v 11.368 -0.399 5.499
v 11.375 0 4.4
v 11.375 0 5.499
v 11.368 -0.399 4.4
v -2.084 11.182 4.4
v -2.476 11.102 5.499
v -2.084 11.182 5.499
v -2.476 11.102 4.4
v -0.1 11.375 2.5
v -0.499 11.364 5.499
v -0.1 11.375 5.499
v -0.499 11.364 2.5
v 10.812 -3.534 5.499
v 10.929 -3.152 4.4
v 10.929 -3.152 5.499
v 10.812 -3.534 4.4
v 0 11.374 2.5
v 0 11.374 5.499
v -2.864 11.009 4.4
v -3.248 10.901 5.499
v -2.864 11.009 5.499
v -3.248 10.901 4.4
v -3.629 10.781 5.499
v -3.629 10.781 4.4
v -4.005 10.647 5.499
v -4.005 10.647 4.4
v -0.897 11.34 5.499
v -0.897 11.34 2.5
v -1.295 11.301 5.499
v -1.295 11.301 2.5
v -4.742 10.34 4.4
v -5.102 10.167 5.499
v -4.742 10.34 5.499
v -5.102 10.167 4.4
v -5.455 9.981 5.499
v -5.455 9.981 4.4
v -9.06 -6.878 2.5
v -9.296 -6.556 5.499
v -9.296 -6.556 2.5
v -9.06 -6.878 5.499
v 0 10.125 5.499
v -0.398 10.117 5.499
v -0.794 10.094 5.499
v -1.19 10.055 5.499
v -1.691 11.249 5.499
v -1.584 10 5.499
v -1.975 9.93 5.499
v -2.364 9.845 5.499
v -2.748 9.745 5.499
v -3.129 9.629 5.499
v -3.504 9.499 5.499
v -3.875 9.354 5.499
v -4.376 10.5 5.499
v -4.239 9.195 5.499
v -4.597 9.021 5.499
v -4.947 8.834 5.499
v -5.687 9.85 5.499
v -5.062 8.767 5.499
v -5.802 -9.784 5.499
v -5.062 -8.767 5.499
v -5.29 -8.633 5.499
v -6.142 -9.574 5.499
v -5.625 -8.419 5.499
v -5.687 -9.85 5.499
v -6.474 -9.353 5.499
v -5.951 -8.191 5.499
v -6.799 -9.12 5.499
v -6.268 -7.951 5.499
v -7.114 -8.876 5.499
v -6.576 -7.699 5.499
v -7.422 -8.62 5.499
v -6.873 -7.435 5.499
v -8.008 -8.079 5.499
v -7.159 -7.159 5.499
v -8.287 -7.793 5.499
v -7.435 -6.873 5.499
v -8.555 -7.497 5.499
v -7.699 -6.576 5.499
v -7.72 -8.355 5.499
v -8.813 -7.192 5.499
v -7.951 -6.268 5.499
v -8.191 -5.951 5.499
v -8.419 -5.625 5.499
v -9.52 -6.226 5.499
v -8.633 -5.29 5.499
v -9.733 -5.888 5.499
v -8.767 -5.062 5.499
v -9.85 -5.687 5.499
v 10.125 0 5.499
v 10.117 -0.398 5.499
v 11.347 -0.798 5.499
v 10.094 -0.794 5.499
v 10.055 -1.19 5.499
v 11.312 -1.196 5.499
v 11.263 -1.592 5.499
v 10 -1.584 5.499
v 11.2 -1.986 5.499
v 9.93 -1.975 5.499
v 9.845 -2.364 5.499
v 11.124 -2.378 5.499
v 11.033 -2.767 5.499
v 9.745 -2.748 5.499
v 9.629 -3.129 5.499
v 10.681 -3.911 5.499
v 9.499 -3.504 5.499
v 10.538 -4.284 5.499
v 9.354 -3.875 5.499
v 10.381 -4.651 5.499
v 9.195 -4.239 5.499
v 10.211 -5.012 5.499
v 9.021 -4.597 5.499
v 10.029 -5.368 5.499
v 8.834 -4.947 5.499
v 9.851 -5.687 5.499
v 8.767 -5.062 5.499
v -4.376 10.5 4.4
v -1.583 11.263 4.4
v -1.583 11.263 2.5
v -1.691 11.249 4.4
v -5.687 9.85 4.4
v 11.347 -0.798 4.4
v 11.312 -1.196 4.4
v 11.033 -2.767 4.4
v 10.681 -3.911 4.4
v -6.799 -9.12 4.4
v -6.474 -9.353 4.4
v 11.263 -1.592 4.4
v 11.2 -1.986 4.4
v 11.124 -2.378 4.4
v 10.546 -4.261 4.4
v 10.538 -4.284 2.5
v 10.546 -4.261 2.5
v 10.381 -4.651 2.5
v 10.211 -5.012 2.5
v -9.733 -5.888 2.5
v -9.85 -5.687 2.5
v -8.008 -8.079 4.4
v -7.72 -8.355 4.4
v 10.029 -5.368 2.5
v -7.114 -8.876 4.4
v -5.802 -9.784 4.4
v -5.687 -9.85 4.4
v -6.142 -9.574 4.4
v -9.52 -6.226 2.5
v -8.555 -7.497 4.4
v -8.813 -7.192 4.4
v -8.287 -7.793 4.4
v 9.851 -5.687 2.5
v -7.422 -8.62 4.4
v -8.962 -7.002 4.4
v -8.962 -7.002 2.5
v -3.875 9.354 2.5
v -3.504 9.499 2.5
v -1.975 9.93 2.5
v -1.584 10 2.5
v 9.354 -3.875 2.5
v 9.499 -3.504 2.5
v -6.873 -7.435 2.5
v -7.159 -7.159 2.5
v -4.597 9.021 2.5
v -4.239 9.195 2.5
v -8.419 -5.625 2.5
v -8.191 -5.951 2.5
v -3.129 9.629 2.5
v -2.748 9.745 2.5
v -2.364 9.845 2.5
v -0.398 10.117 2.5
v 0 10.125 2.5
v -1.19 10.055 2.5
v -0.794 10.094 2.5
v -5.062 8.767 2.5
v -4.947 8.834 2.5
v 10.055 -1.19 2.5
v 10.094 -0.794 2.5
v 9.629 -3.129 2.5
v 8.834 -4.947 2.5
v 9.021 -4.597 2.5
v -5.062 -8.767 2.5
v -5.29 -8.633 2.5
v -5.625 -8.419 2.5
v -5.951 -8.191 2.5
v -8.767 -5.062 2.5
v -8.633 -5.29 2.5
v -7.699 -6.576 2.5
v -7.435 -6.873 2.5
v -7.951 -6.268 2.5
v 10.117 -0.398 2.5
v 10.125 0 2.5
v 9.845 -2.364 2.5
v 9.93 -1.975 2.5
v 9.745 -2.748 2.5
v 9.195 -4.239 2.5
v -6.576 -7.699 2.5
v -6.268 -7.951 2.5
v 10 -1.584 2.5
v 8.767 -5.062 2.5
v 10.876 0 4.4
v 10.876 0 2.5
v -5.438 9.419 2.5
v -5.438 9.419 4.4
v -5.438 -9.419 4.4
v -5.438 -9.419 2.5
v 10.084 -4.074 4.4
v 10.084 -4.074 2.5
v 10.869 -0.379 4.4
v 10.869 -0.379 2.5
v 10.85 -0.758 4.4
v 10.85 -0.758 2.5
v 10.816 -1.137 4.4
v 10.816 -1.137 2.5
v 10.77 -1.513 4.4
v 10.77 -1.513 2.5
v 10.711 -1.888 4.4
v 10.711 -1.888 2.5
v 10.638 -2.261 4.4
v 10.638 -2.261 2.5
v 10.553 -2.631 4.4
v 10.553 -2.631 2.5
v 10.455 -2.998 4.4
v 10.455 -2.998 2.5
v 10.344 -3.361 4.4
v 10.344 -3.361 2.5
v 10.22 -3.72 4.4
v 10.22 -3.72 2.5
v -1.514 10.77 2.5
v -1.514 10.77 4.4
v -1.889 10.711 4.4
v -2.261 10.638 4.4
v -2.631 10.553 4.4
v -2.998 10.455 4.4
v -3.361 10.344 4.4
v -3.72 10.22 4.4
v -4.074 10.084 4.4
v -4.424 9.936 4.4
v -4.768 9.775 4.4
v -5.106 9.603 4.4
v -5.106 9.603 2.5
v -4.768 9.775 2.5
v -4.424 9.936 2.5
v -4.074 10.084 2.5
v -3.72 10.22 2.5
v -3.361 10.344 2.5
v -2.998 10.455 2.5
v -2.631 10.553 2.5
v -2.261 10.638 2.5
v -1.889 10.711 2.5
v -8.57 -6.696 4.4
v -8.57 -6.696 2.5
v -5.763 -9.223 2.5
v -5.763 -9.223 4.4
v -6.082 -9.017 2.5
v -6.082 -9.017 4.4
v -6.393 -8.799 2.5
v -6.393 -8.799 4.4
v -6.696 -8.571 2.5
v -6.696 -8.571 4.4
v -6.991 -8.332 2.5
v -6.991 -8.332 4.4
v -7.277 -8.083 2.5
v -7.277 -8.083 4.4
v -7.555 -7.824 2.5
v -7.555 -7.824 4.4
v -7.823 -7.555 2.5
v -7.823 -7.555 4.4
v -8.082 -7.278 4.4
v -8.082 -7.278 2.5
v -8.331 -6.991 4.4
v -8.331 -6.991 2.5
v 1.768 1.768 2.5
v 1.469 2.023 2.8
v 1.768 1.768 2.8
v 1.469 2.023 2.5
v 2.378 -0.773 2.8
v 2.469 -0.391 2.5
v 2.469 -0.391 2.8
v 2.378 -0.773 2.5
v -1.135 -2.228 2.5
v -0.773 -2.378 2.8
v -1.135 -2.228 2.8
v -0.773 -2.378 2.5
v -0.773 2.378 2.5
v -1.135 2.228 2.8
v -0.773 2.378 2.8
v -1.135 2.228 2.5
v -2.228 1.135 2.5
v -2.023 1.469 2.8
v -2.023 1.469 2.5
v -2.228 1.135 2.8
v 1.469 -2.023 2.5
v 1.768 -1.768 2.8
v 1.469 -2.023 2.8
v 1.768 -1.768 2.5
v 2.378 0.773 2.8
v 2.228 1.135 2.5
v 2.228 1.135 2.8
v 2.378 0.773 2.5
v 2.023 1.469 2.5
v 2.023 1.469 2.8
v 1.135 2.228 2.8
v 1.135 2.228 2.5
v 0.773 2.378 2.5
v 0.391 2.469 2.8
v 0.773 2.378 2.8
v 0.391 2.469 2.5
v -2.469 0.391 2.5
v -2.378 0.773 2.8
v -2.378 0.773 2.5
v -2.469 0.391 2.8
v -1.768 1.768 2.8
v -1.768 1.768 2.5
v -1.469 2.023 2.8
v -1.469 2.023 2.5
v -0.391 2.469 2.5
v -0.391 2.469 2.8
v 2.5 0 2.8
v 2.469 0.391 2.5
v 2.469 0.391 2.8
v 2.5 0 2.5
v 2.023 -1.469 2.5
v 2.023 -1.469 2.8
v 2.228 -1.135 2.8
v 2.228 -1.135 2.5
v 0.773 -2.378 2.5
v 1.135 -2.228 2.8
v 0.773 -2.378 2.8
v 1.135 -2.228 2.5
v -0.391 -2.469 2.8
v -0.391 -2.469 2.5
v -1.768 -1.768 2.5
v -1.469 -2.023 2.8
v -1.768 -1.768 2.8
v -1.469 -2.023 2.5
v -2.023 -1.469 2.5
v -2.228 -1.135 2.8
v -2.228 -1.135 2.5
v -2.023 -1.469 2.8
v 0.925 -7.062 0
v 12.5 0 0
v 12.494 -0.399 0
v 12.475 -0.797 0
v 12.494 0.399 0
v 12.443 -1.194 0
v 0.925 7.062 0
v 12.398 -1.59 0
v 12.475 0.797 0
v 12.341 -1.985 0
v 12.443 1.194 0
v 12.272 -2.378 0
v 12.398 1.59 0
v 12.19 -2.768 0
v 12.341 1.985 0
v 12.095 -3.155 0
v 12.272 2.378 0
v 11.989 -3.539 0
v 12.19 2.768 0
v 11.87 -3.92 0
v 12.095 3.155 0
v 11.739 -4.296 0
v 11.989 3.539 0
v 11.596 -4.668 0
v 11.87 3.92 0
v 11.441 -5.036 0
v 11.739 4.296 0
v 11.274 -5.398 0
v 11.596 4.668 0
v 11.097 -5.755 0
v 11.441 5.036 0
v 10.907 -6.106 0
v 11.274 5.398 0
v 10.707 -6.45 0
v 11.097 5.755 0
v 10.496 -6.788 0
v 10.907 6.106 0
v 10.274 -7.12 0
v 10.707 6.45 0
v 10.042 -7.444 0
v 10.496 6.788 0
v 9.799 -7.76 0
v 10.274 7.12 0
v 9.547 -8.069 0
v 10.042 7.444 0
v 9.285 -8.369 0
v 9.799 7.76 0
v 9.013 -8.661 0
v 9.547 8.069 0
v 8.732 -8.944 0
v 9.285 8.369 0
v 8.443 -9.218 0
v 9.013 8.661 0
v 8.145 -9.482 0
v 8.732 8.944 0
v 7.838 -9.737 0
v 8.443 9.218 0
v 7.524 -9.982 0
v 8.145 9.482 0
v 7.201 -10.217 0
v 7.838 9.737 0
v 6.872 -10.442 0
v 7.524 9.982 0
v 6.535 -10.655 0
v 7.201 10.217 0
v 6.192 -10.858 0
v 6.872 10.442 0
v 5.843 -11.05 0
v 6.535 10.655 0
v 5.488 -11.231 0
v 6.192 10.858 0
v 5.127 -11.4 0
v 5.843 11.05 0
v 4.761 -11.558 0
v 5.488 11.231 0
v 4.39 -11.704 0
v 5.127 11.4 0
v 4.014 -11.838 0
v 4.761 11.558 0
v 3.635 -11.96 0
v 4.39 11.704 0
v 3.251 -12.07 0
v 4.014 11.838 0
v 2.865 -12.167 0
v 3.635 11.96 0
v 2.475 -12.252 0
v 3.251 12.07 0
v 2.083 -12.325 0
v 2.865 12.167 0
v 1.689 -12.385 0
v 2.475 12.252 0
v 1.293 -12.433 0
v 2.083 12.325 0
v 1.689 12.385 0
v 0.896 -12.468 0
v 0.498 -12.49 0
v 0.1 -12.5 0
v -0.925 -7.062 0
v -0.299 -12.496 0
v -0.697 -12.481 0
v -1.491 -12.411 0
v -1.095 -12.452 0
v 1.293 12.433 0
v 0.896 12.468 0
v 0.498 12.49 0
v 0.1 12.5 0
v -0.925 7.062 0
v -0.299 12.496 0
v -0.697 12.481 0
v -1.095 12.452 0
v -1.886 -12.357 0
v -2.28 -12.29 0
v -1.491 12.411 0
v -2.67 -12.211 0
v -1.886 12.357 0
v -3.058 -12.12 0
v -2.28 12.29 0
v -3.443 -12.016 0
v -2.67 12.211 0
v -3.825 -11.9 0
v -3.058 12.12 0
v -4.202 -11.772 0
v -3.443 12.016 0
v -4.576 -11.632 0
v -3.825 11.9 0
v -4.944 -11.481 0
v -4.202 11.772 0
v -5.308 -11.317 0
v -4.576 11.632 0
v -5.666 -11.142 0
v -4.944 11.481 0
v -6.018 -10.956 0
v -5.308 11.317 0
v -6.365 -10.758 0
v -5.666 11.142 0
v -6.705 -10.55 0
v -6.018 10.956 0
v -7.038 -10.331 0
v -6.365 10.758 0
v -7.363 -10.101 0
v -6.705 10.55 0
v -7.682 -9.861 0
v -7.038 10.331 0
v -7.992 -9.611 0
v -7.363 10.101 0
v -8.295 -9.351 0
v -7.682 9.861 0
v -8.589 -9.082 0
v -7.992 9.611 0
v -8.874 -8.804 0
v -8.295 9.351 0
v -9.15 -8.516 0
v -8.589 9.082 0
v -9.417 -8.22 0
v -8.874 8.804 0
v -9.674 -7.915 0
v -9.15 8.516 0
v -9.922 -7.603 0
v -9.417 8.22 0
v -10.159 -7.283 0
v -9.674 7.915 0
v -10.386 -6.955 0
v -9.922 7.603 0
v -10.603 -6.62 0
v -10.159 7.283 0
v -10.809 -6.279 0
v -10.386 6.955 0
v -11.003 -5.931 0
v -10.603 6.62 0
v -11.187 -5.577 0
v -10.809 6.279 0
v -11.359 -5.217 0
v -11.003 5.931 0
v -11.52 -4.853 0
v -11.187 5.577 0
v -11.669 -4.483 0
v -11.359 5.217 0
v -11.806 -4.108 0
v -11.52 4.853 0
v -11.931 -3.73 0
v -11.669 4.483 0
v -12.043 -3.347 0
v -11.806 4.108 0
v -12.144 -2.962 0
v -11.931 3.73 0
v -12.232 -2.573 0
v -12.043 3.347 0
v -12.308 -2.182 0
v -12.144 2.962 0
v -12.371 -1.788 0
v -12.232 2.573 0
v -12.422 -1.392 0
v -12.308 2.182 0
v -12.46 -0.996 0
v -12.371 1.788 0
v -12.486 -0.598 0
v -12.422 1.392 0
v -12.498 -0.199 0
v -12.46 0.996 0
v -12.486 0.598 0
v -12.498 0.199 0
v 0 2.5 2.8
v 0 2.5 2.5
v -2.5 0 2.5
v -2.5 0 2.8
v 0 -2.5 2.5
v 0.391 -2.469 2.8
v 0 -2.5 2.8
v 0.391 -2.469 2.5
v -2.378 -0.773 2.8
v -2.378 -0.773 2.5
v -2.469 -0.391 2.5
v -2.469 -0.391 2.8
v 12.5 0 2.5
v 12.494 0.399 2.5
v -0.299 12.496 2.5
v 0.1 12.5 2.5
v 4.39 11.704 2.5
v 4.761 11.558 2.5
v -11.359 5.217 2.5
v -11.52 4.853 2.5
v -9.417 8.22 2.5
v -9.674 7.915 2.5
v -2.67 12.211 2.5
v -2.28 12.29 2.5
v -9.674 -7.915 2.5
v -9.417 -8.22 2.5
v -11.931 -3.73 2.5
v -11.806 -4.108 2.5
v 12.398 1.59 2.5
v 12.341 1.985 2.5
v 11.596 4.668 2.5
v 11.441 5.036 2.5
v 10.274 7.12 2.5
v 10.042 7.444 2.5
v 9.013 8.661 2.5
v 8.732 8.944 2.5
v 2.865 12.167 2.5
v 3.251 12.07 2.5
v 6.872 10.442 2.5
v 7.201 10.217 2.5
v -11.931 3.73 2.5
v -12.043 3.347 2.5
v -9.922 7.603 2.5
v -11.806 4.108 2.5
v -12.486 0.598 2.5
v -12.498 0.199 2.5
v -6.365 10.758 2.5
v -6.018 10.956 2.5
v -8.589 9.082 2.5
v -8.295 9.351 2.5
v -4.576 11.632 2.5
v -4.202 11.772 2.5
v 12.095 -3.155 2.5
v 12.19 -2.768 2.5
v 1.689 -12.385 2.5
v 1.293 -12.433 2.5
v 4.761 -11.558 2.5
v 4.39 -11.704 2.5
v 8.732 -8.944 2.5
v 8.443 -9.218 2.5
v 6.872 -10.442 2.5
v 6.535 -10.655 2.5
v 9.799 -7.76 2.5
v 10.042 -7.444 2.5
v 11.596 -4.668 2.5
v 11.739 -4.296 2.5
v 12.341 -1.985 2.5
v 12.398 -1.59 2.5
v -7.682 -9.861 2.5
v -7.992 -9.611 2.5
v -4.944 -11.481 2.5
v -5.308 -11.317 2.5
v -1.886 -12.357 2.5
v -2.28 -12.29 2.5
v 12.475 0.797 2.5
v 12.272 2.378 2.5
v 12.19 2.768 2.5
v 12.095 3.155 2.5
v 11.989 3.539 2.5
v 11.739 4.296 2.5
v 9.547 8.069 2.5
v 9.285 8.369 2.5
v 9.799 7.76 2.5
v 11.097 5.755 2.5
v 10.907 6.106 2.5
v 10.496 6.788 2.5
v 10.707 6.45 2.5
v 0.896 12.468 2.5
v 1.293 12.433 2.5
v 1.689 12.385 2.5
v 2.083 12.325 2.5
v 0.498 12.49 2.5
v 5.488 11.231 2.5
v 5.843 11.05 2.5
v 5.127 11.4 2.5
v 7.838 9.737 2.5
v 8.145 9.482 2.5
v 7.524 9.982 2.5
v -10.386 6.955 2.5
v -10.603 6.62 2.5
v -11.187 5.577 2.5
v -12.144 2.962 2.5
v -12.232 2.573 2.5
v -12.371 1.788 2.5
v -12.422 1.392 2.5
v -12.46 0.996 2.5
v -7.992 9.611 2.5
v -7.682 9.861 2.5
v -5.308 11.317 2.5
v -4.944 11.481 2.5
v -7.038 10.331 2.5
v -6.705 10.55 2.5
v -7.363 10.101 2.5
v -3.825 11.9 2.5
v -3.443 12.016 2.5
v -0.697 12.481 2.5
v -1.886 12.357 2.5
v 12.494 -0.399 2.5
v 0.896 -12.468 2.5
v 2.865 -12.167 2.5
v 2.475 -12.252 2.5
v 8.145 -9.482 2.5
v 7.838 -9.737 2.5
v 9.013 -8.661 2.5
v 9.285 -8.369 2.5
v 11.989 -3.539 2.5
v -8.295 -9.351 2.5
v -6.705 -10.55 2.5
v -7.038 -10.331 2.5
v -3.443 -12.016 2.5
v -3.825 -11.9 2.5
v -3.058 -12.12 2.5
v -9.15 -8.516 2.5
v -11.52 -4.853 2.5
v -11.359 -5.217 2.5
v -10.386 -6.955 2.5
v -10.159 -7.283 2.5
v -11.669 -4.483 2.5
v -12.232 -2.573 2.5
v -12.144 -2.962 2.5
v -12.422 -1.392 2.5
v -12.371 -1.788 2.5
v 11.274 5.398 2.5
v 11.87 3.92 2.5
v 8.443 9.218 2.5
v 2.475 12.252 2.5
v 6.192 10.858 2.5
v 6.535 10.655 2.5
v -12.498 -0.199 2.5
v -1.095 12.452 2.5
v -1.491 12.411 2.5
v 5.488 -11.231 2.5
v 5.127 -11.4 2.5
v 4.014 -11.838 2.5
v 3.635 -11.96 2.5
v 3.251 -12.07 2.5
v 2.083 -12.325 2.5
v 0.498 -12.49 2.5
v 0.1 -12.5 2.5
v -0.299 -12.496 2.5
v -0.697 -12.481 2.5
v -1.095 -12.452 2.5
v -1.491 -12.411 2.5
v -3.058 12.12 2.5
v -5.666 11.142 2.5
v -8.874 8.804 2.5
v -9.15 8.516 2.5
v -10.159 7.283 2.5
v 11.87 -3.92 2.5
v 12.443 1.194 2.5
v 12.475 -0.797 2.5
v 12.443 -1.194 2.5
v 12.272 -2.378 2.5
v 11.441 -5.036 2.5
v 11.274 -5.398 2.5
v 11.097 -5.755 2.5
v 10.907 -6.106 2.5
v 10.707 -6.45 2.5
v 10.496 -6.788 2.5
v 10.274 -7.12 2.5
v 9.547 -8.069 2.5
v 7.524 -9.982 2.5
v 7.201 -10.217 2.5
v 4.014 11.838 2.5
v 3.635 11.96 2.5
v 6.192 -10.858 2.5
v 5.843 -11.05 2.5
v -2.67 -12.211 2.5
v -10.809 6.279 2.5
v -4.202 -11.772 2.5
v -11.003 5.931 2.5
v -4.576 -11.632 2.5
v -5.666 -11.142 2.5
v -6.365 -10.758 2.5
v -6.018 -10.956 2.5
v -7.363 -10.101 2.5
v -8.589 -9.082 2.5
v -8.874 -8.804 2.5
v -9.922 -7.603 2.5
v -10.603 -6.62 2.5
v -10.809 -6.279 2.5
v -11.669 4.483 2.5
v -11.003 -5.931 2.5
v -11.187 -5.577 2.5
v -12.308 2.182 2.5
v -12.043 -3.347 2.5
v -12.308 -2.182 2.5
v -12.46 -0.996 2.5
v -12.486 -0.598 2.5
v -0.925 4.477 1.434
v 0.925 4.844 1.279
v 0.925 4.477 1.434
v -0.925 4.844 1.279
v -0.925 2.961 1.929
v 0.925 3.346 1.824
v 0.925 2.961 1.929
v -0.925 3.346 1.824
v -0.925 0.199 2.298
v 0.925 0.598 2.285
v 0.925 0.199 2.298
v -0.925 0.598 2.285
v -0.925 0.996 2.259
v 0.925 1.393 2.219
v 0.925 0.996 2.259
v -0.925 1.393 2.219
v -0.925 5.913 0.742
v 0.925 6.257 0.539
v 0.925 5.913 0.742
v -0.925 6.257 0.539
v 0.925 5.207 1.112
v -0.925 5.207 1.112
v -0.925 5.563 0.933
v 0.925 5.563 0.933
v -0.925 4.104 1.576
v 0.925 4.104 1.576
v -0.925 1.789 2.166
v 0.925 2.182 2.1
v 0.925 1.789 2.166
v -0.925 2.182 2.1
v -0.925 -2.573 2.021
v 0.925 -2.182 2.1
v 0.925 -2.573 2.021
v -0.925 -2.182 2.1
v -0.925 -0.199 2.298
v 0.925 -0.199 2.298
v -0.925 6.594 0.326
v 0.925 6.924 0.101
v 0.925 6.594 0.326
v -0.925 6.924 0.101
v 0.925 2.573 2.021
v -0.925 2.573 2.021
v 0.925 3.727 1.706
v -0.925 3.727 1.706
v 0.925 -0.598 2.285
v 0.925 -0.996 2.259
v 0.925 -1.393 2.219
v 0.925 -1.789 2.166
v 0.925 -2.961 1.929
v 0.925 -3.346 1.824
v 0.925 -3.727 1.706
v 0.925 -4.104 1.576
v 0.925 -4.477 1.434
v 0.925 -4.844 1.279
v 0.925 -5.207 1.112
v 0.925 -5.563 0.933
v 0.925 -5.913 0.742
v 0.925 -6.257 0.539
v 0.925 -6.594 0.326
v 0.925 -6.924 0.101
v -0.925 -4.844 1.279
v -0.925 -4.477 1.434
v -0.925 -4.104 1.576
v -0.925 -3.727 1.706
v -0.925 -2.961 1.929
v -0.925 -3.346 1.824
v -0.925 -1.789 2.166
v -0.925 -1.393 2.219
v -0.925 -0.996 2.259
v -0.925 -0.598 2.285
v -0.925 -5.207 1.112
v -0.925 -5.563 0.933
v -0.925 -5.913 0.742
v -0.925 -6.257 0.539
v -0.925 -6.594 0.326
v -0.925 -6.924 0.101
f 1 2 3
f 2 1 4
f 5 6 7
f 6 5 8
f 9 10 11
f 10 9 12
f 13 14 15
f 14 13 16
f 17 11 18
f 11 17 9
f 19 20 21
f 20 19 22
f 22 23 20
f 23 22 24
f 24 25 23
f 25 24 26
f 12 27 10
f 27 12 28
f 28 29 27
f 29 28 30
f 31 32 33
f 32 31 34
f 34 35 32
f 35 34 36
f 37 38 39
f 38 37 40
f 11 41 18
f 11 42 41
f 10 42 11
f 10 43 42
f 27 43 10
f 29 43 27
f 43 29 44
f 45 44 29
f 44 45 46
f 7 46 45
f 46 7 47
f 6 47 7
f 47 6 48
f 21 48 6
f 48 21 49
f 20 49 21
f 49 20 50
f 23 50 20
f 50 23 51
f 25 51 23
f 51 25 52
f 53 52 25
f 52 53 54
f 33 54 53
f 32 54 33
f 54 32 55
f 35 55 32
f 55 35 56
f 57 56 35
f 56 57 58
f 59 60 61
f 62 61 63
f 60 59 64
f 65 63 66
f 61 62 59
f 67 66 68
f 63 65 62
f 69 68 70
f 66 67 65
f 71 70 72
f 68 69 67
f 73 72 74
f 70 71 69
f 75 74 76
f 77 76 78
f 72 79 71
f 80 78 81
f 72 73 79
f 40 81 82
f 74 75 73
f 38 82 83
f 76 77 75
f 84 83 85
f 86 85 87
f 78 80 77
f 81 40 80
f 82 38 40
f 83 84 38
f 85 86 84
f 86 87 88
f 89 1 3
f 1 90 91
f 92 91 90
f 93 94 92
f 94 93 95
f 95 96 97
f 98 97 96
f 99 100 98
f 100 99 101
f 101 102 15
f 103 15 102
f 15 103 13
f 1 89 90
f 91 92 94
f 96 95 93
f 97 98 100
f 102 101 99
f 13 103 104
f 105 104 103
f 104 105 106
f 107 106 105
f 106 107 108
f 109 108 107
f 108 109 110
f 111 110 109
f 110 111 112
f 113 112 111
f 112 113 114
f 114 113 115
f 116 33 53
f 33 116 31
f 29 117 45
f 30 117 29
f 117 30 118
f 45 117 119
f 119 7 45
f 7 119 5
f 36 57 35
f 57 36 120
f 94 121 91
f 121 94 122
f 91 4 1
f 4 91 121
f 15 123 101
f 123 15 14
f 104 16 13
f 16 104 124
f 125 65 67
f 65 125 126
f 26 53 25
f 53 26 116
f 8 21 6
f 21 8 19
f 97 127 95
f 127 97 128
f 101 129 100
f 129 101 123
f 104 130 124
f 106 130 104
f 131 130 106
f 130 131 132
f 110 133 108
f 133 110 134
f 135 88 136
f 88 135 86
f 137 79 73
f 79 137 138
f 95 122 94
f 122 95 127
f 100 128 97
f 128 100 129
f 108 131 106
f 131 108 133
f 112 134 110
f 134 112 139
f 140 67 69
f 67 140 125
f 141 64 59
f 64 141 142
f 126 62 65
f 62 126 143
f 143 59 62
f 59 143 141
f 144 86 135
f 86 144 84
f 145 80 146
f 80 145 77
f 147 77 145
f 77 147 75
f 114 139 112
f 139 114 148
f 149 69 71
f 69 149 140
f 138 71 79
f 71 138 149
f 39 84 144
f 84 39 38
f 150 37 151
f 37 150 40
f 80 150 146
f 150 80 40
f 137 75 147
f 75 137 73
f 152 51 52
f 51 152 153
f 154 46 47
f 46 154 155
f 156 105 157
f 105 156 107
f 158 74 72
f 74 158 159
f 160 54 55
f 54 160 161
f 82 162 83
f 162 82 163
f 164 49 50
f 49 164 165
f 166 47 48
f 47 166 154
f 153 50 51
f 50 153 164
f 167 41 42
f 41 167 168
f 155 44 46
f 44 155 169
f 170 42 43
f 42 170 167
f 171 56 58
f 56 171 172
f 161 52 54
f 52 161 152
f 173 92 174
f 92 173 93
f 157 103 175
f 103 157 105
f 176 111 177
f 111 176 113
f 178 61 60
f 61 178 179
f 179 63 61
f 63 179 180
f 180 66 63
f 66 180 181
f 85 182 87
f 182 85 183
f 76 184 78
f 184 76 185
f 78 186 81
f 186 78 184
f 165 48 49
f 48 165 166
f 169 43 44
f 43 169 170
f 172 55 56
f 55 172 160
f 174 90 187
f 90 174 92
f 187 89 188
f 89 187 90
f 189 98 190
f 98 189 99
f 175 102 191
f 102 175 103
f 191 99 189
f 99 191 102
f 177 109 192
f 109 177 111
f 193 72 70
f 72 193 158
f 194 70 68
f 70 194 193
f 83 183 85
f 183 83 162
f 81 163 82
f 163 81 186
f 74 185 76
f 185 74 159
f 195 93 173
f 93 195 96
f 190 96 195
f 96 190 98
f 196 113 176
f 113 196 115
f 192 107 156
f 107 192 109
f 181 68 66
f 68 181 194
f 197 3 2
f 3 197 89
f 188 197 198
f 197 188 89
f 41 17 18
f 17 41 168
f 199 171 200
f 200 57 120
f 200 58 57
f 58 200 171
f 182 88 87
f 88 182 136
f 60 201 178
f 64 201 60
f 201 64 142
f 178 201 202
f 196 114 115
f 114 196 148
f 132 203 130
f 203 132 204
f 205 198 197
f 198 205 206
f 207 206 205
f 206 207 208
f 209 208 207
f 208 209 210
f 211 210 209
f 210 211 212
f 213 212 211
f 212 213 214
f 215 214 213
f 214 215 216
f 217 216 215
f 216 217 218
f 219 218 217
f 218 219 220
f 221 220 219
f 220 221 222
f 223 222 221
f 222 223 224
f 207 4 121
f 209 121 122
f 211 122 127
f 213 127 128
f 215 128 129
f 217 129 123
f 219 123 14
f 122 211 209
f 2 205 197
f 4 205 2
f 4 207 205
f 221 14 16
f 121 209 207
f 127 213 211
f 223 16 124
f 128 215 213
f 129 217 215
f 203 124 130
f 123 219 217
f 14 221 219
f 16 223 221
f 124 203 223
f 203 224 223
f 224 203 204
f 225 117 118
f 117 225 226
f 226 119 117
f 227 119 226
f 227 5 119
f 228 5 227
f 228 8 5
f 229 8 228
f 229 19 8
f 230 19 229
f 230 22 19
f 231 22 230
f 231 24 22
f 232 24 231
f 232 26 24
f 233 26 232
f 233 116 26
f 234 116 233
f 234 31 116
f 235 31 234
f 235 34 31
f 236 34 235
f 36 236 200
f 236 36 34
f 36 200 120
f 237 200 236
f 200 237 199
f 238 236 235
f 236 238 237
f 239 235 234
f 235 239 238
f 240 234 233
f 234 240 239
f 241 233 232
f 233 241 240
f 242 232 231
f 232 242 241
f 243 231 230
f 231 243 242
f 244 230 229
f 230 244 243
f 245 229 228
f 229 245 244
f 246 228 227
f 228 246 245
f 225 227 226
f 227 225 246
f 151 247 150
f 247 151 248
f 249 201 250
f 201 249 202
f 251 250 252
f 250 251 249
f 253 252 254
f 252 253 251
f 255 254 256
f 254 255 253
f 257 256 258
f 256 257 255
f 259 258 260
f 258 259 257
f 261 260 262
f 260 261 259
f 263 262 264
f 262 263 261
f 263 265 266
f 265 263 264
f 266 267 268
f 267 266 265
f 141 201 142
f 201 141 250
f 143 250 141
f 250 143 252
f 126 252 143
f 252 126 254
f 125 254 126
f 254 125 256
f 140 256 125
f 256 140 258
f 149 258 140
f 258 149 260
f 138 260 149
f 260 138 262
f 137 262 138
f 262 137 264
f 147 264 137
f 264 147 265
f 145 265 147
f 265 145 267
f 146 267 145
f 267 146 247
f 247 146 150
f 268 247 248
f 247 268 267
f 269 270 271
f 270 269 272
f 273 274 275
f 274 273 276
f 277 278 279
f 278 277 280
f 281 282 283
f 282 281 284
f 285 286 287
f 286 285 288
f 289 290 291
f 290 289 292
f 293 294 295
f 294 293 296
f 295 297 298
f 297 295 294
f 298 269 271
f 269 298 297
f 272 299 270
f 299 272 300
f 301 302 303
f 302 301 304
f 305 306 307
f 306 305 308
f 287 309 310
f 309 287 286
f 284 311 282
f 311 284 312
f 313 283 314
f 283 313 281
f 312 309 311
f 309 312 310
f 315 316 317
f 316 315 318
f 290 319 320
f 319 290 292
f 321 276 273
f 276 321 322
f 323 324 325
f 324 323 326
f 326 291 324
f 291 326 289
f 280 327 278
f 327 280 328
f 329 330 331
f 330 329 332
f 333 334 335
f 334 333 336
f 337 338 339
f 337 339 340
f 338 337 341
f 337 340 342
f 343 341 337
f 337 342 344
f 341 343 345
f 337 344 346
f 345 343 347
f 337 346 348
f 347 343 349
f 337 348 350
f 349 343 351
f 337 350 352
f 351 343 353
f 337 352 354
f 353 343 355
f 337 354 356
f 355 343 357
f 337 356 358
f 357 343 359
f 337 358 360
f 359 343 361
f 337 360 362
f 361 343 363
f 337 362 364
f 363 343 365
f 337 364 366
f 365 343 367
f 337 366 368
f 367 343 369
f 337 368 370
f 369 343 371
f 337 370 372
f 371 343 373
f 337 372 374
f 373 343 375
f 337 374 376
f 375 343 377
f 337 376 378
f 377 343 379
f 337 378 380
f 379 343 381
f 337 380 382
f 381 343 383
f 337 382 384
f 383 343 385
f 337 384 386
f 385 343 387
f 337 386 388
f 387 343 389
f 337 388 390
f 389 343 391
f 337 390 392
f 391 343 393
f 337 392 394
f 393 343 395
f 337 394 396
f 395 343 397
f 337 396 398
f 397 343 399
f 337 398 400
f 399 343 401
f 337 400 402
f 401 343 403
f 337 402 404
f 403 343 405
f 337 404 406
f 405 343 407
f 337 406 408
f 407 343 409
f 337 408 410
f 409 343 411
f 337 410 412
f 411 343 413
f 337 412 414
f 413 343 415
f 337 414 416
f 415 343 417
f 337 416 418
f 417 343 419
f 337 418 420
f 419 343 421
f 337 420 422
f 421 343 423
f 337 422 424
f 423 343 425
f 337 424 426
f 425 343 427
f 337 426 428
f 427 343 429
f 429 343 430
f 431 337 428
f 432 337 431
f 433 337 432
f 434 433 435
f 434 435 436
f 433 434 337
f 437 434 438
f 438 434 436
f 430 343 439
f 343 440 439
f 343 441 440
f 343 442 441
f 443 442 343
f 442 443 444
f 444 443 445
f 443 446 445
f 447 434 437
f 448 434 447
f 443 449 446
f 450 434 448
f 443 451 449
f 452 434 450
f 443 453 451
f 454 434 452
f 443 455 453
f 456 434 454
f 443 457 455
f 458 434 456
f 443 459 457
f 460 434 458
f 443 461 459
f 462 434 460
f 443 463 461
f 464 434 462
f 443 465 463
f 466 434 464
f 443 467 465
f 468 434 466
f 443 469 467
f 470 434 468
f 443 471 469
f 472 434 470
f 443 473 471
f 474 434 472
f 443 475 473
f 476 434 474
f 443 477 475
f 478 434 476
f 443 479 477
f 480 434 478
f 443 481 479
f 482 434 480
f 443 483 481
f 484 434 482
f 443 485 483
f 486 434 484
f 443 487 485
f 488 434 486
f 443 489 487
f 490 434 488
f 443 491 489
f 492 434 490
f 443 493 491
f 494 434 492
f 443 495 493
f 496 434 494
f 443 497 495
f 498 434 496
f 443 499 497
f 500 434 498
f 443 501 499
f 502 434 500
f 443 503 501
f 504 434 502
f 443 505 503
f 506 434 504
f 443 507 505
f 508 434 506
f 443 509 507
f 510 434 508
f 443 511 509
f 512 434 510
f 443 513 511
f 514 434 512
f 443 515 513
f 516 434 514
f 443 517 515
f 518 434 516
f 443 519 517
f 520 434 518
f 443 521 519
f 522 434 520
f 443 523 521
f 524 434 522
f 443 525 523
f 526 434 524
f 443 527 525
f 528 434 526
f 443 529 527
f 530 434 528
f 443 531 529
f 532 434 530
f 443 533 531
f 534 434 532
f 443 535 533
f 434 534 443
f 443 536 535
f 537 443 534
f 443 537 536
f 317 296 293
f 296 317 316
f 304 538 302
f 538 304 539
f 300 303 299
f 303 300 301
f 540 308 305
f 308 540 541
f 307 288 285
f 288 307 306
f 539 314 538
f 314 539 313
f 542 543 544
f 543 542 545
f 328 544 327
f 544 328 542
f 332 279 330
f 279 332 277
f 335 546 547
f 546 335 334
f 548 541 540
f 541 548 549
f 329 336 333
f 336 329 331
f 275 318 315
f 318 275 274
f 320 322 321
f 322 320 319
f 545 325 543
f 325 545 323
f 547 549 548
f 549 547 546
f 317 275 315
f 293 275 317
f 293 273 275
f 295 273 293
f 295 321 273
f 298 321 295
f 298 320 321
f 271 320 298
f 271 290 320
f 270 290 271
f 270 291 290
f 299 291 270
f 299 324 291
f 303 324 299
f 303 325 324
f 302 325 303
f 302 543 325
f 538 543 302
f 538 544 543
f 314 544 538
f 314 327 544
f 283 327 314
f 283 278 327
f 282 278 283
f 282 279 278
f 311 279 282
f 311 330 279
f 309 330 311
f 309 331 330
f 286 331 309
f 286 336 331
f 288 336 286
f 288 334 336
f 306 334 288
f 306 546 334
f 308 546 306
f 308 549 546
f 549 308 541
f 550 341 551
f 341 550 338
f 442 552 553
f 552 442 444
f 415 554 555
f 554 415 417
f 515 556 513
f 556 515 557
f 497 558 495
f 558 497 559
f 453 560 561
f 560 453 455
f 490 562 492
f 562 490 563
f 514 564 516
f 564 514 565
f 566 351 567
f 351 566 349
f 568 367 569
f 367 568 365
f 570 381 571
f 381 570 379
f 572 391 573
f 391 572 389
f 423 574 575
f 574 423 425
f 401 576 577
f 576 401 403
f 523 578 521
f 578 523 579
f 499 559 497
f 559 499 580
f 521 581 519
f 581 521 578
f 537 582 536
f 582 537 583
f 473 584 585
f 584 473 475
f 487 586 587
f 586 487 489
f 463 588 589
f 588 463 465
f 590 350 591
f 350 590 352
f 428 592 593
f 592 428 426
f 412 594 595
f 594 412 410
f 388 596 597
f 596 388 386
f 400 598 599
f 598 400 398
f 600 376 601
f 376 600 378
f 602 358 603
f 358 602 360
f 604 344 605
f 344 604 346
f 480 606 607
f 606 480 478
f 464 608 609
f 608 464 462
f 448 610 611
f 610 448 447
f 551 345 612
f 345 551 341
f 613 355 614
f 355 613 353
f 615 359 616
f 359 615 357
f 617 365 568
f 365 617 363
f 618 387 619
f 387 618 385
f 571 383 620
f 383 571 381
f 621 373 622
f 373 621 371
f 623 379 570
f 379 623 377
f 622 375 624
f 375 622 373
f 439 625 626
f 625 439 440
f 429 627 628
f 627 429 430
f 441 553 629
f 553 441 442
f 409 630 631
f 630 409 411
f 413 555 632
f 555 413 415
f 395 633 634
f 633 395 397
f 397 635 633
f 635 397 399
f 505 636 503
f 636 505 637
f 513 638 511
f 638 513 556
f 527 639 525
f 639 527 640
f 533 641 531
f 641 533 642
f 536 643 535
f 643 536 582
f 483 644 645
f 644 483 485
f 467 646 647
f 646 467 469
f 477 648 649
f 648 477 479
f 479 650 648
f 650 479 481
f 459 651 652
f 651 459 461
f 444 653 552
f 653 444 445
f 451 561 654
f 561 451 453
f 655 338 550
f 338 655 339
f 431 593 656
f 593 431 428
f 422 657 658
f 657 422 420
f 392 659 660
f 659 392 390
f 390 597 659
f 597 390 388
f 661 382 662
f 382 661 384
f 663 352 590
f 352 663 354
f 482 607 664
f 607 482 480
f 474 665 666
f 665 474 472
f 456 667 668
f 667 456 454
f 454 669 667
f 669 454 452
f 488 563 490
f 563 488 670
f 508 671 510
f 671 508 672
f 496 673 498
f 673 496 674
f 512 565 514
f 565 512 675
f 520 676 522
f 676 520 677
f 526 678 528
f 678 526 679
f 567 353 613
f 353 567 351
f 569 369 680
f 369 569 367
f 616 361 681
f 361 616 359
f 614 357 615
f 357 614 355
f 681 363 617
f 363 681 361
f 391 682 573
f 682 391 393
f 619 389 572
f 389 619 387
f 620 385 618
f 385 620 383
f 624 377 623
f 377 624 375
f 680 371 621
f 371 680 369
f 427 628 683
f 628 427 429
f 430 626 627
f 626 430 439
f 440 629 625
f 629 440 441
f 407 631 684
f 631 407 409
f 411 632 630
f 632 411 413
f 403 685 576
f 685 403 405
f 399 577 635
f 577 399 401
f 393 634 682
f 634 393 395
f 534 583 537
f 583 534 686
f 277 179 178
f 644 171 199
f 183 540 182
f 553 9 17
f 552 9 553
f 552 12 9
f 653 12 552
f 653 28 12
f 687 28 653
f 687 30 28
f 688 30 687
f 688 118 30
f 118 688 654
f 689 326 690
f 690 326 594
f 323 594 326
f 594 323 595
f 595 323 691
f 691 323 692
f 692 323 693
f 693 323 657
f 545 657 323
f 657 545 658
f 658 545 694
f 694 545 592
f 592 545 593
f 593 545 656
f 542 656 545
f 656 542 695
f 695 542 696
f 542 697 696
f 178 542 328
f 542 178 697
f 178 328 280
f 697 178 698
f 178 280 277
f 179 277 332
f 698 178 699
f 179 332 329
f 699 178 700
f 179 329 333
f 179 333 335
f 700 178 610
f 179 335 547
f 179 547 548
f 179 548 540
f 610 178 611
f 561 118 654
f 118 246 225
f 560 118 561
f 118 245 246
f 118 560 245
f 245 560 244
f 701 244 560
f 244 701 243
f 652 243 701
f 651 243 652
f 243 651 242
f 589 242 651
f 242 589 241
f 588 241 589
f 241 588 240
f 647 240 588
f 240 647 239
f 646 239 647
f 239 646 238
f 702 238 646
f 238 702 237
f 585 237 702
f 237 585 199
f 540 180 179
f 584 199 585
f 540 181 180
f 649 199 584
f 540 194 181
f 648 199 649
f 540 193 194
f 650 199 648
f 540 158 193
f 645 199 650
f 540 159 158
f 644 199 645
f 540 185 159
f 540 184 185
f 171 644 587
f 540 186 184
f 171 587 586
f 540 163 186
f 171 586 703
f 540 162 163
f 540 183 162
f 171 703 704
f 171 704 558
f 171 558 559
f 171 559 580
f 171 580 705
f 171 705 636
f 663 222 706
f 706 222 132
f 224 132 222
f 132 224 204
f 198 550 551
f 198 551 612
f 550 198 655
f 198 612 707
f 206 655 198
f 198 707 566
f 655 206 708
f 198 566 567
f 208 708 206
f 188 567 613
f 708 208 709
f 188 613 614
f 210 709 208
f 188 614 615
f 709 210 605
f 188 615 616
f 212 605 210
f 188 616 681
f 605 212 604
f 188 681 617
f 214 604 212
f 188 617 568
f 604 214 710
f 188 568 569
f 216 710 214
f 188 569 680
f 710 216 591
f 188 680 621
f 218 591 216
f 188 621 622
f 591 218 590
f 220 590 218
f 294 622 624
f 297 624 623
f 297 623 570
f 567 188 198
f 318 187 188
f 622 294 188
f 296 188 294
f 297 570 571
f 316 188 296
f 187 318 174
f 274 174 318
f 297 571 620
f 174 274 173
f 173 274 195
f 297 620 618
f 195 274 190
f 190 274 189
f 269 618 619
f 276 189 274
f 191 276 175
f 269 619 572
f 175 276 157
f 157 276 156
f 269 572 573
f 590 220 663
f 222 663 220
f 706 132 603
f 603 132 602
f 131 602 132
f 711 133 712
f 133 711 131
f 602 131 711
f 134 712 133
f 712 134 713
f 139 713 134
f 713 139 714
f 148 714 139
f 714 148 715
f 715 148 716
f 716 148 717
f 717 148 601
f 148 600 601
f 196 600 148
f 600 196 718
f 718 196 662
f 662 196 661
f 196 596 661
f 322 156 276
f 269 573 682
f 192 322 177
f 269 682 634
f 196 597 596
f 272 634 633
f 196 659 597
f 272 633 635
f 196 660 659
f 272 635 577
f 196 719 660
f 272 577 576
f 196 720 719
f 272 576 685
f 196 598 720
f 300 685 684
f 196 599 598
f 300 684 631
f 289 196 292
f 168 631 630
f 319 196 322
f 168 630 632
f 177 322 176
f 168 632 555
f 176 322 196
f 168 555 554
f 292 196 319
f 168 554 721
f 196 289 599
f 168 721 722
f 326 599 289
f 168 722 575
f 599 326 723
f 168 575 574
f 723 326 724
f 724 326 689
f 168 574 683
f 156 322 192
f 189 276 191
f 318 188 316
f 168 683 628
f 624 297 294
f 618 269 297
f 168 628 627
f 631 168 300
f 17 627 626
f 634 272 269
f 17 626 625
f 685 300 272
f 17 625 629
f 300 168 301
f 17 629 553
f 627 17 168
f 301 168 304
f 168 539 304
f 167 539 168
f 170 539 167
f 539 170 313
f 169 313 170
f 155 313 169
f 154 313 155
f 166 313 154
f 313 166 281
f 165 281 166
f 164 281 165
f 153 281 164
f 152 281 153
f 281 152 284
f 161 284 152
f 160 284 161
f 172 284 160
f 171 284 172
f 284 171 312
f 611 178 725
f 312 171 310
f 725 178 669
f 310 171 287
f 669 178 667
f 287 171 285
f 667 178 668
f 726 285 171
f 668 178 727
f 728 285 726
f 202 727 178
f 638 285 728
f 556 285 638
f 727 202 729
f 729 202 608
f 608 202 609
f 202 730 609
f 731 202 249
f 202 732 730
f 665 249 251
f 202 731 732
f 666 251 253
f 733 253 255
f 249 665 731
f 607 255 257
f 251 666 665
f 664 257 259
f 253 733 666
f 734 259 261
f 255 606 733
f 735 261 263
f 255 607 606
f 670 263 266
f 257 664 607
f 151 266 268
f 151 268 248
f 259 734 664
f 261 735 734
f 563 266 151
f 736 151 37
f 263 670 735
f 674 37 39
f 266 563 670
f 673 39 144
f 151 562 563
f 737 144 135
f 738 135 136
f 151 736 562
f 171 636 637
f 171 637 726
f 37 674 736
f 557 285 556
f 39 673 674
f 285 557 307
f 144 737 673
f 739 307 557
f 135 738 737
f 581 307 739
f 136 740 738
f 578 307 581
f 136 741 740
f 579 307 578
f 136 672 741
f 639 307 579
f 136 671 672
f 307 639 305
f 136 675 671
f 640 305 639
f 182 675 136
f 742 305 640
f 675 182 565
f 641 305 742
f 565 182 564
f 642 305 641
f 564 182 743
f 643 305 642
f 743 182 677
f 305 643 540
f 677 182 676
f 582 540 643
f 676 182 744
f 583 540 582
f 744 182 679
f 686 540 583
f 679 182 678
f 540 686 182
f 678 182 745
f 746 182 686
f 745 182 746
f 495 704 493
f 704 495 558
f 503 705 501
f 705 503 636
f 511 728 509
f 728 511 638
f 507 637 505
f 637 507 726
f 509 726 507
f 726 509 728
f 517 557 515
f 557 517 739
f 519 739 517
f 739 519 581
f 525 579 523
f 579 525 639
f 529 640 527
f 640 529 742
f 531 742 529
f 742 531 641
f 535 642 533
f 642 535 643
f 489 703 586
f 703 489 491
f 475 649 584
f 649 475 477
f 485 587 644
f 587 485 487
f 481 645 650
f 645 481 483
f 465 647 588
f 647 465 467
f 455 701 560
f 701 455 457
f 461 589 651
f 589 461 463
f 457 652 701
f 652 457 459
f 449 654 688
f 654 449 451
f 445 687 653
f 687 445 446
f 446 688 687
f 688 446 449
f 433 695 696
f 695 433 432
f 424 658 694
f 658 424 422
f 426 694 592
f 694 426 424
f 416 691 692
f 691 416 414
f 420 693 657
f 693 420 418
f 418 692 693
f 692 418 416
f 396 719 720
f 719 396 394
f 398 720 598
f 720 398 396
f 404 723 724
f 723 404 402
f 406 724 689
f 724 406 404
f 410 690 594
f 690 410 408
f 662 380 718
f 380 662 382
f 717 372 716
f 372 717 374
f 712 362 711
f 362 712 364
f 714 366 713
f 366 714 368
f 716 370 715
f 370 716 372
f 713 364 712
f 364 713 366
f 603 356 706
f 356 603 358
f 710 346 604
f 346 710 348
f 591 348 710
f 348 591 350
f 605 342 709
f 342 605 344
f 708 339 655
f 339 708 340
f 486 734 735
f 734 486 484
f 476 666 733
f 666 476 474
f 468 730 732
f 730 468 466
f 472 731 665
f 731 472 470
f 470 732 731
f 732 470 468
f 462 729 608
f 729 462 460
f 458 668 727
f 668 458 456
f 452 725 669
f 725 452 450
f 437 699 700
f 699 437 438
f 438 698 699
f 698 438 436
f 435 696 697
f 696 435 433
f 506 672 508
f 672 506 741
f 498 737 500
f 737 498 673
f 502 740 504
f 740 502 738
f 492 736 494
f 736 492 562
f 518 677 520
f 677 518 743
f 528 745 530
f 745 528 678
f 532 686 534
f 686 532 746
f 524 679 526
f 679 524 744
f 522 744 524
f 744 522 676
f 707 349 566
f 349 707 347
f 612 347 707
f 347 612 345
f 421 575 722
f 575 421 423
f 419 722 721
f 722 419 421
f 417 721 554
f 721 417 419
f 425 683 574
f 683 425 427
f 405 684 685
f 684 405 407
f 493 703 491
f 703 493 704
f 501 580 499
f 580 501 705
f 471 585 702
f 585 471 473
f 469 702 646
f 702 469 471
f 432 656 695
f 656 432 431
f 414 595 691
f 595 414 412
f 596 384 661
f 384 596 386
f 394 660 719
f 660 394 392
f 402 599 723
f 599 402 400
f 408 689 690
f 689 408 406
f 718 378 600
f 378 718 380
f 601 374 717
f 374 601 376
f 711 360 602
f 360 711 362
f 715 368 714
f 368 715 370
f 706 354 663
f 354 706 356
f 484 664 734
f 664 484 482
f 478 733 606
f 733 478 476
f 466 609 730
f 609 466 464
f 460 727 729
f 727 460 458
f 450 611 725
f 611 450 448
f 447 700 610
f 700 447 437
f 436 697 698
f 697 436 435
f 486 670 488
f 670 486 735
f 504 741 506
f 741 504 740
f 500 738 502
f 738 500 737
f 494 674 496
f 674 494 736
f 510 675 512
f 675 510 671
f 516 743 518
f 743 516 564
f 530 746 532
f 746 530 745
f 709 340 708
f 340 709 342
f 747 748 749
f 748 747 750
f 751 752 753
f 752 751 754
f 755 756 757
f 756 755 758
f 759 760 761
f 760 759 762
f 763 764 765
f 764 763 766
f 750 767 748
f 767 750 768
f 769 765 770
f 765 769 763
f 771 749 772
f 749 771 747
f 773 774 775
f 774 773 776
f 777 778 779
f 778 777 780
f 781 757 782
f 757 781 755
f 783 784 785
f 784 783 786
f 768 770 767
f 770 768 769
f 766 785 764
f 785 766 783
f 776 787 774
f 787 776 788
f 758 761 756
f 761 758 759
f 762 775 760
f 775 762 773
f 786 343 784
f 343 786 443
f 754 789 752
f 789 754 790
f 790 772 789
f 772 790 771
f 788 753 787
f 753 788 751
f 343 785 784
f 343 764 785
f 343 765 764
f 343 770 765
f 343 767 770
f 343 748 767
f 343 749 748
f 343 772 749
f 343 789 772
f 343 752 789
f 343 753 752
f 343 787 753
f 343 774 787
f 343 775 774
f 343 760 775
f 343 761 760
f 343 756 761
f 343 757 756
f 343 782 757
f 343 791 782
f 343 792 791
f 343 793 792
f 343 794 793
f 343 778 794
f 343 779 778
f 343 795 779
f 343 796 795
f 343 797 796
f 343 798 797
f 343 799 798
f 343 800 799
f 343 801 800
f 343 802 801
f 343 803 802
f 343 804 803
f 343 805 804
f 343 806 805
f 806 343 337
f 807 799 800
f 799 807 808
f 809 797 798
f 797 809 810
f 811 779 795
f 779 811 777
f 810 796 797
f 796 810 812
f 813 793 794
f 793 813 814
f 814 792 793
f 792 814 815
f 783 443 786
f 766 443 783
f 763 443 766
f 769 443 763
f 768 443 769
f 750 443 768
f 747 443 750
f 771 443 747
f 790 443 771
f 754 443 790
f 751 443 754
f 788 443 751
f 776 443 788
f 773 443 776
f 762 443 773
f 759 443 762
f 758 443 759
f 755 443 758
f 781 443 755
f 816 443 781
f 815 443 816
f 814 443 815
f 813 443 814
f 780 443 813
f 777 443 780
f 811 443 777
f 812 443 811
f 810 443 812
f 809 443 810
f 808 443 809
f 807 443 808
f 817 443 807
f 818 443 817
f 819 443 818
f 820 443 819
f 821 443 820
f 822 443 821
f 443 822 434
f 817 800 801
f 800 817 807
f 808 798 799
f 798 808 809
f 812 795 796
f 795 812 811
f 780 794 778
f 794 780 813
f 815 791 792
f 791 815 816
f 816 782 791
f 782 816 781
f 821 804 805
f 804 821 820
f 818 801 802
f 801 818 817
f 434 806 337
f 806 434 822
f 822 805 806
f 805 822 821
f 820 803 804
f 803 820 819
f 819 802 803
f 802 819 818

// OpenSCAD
$fa = 1;
$fs = 0.4;
merge_offset=0.001;

module disk_body() {
    cylinder(h=2.5,d=25);
}


module inner_pins() {
    
    module pin_cylinder() { 
        cylinder(h=3,d=22.75);
    }
    
    module pin_cylinder_inner_cutout() { 
        // removes the interior of the cylinder to make a ring
        color("green") cylinder(h=3+merge_offset,d=20.25);
    }
    
    module cut_arc() {
        // Removes a portion of the ring to make a pin
        color("red") rotate_extrude(angle = 90, convexity = 10)
        translate([20.25/2-2*merge_offset, 0, 0])
        square([1.5+4*merge_offset,3+merge_offset]);        
    }
    
    module cut_pin() {
        // removes a chunk from the pin so it mates with the monitor
        rotate_extrude(angle = -22, convexity = 10)
        translate([21.75/2+merge_offset, 0, 0])
        square([1.5+merge_offset,1.9+merge_offset]);        
    }    
    
    
    difference() {
        color("blue") pin_cylinder();
        pin_cylinder_inner_cutout();
        cut_arc();
        rotate([0,0, 120]) cut_arc();
        rotate([0,0, 240]) cut_arc();
        rotate([0,0, merge_offset]) cut_pin();
        rotate([0,0, 120 + merge_offset]) cut_pin();
        rotate([0,0, 240 + merge_offset]) cut_pin();
    }
    
}

module pressure_point() {
    disk_diameter=5;
    disk_height=2.7;
    cylinder(h=2.8,d=5);    
}

module coin_slot() {
    // modeled on a quarter and used to open and close the cover.
    disk_diameter=24;
    disk_height=1.85;
    translate ([0,0,-disk_diameter/2 + 2.3 ])
      rotate([0, 90, 0]) 
        cylinder(h=disk_height,d=disk_diameter,center = true);
}


difference() {
    union() {
        pressure_point();
        disk_body();
    }  
  coin_slot();
}
translate([0,0,2.5-merge_offset]) inner_pins();
